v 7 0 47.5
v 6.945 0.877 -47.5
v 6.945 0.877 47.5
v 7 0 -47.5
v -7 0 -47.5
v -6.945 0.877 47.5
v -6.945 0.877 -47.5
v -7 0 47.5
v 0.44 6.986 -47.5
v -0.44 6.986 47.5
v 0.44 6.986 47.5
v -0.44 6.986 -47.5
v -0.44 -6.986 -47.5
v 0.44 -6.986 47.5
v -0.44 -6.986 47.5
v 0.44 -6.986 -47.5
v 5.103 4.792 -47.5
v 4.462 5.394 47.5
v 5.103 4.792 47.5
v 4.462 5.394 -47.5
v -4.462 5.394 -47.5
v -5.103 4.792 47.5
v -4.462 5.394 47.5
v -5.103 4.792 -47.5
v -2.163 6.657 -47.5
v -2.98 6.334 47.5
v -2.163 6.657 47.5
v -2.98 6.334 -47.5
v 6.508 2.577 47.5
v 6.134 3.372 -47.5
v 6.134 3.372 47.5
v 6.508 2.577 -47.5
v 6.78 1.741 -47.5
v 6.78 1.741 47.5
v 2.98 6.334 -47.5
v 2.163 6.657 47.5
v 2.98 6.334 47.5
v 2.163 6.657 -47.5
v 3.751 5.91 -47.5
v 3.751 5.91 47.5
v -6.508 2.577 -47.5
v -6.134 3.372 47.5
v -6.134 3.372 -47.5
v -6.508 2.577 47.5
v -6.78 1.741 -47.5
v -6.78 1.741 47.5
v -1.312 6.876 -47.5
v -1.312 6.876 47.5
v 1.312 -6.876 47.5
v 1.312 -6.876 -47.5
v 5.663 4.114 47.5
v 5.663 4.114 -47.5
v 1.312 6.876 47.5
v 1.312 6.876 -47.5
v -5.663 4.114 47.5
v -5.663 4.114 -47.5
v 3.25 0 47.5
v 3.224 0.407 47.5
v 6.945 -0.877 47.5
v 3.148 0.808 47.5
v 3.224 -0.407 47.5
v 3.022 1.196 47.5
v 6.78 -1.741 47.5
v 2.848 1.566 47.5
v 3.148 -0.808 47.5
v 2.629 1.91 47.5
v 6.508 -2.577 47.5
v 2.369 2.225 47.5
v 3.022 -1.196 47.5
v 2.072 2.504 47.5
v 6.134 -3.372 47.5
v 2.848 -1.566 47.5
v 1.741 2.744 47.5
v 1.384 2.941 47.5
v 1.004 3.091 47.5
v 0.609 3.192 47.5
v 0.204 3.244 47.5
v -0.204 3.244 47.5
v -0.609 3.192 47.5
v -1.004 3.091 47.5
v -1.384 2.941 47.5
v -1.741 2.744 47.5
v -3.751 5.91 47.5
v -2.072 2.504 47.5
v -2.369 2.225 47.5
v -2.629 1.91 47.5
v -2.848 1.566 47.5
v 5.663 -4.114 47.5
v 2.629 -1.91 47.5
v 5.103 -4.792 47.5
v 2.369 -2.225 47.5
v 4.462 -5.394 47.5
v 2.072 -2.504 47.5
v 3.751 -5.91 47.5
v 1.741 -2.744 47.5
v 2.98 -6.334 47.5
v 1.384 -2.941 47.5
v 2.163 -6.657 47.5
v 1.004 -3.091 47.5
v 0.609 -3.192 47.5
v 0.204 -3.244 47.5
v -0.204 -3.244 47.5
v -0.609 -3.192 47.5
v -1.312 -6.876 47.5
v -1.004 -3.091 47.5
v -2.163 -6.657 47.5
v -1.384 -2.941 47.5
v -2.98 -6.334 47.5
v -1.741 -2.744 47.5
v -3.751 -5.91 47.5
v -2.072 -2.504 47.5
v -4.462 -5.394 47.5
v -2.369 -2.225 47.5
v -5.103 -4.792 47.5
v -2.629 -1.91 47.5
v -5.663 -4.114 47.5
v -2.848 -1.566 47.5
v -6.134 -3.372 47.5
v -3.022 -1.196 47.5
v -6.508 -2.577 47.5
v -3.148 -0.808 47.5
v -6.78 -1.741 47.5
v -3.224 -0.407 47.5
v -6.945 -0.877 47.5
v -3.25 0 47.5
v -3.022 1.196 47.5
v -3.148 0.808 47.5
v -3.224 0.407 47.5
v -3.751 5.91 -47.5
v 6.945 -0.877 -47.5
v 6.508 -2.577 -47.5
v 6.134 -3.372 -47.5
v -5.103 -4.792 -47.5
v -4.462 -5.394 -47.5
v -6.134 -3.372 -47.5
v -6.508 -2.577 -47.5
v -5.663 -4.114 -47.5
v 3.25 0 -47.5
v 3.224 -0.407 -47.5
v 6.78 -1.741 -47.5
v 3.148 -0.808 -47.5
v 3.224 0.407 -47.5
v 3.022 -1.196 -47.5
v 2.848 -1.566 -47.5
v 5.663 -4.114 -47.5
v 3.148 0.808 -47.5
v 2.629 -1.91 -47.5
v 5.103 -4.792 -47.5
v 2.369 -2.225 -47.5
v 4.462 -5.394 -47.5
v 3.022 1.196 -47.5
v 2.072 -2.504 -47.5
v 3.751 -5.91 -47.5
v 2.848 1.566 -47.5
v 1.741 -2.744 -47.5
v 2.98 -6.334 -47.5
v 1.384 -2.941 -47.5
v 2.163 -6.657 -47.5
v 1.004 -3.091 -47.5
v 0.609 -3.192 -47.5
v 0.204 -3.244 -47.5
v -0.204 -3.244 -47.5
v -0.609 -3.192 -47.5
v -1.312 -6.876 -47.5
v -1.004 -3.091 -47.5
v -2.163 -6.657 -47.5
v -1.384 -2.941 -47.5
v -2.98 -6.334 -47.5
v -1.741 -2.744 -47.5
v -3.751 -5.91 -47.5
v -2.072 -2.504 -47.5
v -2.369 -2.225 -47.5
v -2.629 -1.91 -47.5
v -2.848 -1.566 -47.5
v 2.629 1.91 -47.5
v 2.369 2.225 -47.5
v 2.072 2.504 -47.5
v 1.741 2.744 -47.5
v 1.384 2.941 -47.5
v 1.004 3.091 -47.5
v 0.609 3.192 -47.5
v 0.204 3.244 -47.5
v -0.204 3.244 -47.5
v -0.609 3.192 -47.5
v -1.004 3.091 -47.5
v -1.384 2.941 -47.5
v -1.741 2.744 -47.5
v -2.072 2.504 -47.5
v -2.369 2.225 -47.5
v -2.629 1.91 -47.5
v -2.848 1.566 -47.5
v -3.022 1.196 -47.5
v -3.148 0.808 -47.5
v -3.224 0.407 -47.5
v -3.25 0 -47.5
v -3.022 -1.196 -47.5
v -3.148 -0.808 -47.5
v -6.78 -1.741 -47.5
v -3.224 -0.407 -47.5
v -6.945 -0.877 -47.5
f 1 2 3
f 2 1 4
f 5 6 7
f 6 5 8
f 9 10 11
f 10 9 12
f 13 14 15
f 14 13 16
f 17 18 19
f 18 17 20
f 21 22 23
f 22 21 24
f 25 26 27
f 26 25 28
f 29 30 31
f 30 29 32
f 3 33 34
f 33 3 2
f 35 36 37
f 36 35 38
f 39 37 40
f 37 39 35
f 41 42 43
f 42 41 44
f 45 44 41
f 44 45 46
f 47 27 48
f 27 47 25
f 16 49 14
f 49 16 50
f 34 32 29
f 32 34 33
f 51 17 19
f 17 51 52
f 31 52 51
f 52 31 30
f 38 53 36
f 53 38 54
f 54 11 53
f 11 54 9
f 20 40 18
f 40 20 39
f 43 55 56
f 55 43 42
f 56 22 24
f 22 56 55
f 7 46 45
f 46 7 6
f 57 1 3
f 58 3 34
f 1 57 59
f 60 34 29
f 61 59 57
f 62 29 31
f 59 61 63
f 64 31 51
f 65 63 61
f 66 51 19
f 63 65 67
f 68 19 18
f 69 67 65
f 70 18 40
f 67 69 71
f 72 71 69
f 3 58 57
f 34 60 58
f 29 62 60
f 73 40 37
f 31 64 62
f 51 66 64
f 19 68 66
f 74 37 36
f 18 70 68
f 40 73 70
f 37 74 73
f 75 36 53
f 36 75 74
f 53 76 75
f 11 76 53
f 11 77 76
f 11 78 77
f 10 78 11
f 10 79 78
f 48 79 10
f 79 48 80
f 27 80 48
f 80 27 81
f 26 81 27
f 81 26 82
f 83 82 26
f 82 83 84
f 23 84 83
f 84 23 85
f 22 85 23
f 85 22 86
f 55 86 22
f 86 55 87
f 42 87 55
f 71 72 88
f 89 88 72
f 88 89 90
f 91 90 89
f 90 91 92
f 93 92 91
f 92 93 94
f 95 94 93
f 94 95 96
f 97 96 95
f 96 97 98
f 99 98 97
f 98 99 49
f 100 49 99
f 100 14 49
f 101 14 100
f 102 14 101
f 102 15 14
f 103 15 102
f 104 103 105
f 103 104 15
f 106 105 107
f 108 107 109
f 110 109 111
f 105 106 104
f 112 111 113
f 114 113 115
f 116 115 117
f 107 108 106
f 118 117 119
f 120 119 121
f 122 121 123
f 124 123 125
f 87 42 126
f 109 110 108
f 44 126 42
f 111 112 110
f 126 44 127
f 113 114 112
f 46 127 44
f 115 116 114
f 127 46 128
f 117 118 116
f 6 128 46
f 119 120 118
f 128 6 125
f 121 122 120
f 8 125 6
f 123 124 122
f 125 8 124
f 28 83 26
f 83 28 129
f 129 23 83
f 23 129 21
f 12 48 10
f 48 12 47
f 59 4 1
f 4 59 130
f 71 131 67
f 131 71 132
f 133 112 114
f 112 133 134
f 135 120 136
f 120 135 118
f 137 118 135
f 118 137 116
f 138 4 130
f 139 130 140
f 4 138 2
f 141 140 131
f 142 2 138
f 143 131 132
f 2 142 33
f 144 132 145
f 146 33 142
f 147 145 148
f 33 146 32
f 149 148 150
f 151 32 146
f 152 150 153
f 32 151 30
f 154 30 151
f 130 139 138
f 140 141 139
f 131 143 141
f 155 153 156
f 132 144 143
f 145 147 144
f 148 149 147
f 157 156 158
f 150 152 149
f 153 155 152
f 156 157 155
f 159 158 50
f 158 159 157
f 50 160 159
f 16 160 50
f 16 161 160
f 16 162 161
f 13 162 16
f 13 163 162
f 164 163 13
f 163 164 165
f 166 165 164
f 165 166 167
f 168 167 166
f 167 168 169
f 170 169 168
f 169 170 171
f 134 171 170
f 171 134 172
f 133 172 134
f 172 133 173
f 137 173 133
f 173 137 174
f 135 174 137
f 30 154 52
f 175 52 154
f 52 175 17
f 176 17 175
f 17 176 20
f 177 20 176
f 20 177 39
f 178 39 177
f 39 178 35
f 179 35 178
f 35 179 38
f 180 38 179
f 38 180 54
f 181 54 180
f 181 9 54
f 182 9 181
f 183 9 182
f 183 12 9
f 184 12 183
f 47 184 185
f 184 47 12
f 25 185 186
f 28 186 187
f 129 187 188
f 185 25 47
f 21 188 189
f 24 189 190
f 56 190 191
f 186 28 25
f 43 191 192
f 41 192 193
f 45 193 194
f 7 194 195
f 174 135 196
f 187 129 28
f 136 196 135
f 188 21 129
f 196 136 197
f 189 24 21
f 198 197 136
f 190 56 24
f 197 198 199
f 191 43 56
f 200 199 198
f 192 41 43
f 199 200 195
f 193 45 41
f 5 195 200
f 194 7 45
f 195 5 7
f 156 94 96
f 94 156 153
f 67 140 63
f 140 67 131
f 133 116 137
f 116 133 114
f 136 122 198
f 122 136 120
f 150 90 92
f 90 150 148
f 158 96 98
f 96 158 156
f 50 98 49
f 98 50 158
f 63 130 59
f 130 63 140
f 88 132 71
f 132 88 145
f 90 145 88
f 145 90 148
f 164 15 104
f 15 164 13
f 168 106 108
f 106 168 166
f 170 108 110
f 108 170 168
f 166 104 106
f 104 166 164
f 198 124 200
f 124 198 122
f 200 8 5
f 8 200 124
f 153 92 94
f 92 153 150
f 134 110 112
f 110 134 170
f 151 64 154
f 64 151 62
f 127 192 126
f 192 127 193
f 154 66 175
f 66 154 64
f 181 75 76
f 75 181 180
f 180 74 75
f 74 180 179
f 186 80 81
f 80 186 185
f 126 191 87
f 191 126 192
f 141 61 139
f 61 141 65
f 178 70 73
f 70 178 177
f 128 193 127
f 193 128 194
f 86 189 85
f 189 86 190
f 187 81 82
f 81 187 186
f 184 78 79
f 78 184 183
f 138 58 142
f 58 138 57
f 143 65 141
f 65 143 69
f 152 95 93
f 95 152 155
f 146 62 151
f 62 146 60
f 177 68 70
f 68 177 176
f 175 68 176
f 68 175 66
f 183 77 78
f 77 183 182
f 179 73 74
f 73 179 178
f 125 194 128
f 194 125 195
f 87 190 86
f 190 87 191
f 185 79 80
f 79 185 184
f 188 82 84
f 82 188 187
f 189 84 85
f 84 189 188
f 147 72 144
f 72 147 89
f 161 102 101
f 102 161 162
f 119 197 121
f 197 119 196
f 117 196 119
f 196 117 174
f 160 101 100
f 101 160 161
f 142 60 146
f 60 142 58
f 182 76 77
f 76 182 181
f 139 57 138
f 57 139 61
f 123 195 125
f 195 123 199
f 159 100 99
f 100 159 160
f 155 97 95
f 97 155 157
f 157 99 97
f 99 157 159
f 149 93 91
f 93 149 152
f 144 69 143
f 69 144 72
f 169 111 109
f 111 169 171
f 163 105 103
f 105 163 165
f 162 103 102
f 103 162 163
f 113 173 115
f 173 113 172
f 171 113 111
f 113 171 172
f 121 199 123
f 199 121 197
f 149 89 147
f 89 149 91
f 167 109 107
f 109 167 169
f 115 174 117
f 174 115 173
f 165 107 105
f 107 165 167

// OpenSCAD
$fn = 50;


difference() {
	union() {
		translate(v = [0, 0, -47.5000000000]) {
			cylinder(h = 95, r = 7.0000000000);
		}
	}
	union() {
		translate(v = [0, 0, -100.0000000000]) {
			cylinder(h = 200, r = 3.2500000000);
		}
	}
}
